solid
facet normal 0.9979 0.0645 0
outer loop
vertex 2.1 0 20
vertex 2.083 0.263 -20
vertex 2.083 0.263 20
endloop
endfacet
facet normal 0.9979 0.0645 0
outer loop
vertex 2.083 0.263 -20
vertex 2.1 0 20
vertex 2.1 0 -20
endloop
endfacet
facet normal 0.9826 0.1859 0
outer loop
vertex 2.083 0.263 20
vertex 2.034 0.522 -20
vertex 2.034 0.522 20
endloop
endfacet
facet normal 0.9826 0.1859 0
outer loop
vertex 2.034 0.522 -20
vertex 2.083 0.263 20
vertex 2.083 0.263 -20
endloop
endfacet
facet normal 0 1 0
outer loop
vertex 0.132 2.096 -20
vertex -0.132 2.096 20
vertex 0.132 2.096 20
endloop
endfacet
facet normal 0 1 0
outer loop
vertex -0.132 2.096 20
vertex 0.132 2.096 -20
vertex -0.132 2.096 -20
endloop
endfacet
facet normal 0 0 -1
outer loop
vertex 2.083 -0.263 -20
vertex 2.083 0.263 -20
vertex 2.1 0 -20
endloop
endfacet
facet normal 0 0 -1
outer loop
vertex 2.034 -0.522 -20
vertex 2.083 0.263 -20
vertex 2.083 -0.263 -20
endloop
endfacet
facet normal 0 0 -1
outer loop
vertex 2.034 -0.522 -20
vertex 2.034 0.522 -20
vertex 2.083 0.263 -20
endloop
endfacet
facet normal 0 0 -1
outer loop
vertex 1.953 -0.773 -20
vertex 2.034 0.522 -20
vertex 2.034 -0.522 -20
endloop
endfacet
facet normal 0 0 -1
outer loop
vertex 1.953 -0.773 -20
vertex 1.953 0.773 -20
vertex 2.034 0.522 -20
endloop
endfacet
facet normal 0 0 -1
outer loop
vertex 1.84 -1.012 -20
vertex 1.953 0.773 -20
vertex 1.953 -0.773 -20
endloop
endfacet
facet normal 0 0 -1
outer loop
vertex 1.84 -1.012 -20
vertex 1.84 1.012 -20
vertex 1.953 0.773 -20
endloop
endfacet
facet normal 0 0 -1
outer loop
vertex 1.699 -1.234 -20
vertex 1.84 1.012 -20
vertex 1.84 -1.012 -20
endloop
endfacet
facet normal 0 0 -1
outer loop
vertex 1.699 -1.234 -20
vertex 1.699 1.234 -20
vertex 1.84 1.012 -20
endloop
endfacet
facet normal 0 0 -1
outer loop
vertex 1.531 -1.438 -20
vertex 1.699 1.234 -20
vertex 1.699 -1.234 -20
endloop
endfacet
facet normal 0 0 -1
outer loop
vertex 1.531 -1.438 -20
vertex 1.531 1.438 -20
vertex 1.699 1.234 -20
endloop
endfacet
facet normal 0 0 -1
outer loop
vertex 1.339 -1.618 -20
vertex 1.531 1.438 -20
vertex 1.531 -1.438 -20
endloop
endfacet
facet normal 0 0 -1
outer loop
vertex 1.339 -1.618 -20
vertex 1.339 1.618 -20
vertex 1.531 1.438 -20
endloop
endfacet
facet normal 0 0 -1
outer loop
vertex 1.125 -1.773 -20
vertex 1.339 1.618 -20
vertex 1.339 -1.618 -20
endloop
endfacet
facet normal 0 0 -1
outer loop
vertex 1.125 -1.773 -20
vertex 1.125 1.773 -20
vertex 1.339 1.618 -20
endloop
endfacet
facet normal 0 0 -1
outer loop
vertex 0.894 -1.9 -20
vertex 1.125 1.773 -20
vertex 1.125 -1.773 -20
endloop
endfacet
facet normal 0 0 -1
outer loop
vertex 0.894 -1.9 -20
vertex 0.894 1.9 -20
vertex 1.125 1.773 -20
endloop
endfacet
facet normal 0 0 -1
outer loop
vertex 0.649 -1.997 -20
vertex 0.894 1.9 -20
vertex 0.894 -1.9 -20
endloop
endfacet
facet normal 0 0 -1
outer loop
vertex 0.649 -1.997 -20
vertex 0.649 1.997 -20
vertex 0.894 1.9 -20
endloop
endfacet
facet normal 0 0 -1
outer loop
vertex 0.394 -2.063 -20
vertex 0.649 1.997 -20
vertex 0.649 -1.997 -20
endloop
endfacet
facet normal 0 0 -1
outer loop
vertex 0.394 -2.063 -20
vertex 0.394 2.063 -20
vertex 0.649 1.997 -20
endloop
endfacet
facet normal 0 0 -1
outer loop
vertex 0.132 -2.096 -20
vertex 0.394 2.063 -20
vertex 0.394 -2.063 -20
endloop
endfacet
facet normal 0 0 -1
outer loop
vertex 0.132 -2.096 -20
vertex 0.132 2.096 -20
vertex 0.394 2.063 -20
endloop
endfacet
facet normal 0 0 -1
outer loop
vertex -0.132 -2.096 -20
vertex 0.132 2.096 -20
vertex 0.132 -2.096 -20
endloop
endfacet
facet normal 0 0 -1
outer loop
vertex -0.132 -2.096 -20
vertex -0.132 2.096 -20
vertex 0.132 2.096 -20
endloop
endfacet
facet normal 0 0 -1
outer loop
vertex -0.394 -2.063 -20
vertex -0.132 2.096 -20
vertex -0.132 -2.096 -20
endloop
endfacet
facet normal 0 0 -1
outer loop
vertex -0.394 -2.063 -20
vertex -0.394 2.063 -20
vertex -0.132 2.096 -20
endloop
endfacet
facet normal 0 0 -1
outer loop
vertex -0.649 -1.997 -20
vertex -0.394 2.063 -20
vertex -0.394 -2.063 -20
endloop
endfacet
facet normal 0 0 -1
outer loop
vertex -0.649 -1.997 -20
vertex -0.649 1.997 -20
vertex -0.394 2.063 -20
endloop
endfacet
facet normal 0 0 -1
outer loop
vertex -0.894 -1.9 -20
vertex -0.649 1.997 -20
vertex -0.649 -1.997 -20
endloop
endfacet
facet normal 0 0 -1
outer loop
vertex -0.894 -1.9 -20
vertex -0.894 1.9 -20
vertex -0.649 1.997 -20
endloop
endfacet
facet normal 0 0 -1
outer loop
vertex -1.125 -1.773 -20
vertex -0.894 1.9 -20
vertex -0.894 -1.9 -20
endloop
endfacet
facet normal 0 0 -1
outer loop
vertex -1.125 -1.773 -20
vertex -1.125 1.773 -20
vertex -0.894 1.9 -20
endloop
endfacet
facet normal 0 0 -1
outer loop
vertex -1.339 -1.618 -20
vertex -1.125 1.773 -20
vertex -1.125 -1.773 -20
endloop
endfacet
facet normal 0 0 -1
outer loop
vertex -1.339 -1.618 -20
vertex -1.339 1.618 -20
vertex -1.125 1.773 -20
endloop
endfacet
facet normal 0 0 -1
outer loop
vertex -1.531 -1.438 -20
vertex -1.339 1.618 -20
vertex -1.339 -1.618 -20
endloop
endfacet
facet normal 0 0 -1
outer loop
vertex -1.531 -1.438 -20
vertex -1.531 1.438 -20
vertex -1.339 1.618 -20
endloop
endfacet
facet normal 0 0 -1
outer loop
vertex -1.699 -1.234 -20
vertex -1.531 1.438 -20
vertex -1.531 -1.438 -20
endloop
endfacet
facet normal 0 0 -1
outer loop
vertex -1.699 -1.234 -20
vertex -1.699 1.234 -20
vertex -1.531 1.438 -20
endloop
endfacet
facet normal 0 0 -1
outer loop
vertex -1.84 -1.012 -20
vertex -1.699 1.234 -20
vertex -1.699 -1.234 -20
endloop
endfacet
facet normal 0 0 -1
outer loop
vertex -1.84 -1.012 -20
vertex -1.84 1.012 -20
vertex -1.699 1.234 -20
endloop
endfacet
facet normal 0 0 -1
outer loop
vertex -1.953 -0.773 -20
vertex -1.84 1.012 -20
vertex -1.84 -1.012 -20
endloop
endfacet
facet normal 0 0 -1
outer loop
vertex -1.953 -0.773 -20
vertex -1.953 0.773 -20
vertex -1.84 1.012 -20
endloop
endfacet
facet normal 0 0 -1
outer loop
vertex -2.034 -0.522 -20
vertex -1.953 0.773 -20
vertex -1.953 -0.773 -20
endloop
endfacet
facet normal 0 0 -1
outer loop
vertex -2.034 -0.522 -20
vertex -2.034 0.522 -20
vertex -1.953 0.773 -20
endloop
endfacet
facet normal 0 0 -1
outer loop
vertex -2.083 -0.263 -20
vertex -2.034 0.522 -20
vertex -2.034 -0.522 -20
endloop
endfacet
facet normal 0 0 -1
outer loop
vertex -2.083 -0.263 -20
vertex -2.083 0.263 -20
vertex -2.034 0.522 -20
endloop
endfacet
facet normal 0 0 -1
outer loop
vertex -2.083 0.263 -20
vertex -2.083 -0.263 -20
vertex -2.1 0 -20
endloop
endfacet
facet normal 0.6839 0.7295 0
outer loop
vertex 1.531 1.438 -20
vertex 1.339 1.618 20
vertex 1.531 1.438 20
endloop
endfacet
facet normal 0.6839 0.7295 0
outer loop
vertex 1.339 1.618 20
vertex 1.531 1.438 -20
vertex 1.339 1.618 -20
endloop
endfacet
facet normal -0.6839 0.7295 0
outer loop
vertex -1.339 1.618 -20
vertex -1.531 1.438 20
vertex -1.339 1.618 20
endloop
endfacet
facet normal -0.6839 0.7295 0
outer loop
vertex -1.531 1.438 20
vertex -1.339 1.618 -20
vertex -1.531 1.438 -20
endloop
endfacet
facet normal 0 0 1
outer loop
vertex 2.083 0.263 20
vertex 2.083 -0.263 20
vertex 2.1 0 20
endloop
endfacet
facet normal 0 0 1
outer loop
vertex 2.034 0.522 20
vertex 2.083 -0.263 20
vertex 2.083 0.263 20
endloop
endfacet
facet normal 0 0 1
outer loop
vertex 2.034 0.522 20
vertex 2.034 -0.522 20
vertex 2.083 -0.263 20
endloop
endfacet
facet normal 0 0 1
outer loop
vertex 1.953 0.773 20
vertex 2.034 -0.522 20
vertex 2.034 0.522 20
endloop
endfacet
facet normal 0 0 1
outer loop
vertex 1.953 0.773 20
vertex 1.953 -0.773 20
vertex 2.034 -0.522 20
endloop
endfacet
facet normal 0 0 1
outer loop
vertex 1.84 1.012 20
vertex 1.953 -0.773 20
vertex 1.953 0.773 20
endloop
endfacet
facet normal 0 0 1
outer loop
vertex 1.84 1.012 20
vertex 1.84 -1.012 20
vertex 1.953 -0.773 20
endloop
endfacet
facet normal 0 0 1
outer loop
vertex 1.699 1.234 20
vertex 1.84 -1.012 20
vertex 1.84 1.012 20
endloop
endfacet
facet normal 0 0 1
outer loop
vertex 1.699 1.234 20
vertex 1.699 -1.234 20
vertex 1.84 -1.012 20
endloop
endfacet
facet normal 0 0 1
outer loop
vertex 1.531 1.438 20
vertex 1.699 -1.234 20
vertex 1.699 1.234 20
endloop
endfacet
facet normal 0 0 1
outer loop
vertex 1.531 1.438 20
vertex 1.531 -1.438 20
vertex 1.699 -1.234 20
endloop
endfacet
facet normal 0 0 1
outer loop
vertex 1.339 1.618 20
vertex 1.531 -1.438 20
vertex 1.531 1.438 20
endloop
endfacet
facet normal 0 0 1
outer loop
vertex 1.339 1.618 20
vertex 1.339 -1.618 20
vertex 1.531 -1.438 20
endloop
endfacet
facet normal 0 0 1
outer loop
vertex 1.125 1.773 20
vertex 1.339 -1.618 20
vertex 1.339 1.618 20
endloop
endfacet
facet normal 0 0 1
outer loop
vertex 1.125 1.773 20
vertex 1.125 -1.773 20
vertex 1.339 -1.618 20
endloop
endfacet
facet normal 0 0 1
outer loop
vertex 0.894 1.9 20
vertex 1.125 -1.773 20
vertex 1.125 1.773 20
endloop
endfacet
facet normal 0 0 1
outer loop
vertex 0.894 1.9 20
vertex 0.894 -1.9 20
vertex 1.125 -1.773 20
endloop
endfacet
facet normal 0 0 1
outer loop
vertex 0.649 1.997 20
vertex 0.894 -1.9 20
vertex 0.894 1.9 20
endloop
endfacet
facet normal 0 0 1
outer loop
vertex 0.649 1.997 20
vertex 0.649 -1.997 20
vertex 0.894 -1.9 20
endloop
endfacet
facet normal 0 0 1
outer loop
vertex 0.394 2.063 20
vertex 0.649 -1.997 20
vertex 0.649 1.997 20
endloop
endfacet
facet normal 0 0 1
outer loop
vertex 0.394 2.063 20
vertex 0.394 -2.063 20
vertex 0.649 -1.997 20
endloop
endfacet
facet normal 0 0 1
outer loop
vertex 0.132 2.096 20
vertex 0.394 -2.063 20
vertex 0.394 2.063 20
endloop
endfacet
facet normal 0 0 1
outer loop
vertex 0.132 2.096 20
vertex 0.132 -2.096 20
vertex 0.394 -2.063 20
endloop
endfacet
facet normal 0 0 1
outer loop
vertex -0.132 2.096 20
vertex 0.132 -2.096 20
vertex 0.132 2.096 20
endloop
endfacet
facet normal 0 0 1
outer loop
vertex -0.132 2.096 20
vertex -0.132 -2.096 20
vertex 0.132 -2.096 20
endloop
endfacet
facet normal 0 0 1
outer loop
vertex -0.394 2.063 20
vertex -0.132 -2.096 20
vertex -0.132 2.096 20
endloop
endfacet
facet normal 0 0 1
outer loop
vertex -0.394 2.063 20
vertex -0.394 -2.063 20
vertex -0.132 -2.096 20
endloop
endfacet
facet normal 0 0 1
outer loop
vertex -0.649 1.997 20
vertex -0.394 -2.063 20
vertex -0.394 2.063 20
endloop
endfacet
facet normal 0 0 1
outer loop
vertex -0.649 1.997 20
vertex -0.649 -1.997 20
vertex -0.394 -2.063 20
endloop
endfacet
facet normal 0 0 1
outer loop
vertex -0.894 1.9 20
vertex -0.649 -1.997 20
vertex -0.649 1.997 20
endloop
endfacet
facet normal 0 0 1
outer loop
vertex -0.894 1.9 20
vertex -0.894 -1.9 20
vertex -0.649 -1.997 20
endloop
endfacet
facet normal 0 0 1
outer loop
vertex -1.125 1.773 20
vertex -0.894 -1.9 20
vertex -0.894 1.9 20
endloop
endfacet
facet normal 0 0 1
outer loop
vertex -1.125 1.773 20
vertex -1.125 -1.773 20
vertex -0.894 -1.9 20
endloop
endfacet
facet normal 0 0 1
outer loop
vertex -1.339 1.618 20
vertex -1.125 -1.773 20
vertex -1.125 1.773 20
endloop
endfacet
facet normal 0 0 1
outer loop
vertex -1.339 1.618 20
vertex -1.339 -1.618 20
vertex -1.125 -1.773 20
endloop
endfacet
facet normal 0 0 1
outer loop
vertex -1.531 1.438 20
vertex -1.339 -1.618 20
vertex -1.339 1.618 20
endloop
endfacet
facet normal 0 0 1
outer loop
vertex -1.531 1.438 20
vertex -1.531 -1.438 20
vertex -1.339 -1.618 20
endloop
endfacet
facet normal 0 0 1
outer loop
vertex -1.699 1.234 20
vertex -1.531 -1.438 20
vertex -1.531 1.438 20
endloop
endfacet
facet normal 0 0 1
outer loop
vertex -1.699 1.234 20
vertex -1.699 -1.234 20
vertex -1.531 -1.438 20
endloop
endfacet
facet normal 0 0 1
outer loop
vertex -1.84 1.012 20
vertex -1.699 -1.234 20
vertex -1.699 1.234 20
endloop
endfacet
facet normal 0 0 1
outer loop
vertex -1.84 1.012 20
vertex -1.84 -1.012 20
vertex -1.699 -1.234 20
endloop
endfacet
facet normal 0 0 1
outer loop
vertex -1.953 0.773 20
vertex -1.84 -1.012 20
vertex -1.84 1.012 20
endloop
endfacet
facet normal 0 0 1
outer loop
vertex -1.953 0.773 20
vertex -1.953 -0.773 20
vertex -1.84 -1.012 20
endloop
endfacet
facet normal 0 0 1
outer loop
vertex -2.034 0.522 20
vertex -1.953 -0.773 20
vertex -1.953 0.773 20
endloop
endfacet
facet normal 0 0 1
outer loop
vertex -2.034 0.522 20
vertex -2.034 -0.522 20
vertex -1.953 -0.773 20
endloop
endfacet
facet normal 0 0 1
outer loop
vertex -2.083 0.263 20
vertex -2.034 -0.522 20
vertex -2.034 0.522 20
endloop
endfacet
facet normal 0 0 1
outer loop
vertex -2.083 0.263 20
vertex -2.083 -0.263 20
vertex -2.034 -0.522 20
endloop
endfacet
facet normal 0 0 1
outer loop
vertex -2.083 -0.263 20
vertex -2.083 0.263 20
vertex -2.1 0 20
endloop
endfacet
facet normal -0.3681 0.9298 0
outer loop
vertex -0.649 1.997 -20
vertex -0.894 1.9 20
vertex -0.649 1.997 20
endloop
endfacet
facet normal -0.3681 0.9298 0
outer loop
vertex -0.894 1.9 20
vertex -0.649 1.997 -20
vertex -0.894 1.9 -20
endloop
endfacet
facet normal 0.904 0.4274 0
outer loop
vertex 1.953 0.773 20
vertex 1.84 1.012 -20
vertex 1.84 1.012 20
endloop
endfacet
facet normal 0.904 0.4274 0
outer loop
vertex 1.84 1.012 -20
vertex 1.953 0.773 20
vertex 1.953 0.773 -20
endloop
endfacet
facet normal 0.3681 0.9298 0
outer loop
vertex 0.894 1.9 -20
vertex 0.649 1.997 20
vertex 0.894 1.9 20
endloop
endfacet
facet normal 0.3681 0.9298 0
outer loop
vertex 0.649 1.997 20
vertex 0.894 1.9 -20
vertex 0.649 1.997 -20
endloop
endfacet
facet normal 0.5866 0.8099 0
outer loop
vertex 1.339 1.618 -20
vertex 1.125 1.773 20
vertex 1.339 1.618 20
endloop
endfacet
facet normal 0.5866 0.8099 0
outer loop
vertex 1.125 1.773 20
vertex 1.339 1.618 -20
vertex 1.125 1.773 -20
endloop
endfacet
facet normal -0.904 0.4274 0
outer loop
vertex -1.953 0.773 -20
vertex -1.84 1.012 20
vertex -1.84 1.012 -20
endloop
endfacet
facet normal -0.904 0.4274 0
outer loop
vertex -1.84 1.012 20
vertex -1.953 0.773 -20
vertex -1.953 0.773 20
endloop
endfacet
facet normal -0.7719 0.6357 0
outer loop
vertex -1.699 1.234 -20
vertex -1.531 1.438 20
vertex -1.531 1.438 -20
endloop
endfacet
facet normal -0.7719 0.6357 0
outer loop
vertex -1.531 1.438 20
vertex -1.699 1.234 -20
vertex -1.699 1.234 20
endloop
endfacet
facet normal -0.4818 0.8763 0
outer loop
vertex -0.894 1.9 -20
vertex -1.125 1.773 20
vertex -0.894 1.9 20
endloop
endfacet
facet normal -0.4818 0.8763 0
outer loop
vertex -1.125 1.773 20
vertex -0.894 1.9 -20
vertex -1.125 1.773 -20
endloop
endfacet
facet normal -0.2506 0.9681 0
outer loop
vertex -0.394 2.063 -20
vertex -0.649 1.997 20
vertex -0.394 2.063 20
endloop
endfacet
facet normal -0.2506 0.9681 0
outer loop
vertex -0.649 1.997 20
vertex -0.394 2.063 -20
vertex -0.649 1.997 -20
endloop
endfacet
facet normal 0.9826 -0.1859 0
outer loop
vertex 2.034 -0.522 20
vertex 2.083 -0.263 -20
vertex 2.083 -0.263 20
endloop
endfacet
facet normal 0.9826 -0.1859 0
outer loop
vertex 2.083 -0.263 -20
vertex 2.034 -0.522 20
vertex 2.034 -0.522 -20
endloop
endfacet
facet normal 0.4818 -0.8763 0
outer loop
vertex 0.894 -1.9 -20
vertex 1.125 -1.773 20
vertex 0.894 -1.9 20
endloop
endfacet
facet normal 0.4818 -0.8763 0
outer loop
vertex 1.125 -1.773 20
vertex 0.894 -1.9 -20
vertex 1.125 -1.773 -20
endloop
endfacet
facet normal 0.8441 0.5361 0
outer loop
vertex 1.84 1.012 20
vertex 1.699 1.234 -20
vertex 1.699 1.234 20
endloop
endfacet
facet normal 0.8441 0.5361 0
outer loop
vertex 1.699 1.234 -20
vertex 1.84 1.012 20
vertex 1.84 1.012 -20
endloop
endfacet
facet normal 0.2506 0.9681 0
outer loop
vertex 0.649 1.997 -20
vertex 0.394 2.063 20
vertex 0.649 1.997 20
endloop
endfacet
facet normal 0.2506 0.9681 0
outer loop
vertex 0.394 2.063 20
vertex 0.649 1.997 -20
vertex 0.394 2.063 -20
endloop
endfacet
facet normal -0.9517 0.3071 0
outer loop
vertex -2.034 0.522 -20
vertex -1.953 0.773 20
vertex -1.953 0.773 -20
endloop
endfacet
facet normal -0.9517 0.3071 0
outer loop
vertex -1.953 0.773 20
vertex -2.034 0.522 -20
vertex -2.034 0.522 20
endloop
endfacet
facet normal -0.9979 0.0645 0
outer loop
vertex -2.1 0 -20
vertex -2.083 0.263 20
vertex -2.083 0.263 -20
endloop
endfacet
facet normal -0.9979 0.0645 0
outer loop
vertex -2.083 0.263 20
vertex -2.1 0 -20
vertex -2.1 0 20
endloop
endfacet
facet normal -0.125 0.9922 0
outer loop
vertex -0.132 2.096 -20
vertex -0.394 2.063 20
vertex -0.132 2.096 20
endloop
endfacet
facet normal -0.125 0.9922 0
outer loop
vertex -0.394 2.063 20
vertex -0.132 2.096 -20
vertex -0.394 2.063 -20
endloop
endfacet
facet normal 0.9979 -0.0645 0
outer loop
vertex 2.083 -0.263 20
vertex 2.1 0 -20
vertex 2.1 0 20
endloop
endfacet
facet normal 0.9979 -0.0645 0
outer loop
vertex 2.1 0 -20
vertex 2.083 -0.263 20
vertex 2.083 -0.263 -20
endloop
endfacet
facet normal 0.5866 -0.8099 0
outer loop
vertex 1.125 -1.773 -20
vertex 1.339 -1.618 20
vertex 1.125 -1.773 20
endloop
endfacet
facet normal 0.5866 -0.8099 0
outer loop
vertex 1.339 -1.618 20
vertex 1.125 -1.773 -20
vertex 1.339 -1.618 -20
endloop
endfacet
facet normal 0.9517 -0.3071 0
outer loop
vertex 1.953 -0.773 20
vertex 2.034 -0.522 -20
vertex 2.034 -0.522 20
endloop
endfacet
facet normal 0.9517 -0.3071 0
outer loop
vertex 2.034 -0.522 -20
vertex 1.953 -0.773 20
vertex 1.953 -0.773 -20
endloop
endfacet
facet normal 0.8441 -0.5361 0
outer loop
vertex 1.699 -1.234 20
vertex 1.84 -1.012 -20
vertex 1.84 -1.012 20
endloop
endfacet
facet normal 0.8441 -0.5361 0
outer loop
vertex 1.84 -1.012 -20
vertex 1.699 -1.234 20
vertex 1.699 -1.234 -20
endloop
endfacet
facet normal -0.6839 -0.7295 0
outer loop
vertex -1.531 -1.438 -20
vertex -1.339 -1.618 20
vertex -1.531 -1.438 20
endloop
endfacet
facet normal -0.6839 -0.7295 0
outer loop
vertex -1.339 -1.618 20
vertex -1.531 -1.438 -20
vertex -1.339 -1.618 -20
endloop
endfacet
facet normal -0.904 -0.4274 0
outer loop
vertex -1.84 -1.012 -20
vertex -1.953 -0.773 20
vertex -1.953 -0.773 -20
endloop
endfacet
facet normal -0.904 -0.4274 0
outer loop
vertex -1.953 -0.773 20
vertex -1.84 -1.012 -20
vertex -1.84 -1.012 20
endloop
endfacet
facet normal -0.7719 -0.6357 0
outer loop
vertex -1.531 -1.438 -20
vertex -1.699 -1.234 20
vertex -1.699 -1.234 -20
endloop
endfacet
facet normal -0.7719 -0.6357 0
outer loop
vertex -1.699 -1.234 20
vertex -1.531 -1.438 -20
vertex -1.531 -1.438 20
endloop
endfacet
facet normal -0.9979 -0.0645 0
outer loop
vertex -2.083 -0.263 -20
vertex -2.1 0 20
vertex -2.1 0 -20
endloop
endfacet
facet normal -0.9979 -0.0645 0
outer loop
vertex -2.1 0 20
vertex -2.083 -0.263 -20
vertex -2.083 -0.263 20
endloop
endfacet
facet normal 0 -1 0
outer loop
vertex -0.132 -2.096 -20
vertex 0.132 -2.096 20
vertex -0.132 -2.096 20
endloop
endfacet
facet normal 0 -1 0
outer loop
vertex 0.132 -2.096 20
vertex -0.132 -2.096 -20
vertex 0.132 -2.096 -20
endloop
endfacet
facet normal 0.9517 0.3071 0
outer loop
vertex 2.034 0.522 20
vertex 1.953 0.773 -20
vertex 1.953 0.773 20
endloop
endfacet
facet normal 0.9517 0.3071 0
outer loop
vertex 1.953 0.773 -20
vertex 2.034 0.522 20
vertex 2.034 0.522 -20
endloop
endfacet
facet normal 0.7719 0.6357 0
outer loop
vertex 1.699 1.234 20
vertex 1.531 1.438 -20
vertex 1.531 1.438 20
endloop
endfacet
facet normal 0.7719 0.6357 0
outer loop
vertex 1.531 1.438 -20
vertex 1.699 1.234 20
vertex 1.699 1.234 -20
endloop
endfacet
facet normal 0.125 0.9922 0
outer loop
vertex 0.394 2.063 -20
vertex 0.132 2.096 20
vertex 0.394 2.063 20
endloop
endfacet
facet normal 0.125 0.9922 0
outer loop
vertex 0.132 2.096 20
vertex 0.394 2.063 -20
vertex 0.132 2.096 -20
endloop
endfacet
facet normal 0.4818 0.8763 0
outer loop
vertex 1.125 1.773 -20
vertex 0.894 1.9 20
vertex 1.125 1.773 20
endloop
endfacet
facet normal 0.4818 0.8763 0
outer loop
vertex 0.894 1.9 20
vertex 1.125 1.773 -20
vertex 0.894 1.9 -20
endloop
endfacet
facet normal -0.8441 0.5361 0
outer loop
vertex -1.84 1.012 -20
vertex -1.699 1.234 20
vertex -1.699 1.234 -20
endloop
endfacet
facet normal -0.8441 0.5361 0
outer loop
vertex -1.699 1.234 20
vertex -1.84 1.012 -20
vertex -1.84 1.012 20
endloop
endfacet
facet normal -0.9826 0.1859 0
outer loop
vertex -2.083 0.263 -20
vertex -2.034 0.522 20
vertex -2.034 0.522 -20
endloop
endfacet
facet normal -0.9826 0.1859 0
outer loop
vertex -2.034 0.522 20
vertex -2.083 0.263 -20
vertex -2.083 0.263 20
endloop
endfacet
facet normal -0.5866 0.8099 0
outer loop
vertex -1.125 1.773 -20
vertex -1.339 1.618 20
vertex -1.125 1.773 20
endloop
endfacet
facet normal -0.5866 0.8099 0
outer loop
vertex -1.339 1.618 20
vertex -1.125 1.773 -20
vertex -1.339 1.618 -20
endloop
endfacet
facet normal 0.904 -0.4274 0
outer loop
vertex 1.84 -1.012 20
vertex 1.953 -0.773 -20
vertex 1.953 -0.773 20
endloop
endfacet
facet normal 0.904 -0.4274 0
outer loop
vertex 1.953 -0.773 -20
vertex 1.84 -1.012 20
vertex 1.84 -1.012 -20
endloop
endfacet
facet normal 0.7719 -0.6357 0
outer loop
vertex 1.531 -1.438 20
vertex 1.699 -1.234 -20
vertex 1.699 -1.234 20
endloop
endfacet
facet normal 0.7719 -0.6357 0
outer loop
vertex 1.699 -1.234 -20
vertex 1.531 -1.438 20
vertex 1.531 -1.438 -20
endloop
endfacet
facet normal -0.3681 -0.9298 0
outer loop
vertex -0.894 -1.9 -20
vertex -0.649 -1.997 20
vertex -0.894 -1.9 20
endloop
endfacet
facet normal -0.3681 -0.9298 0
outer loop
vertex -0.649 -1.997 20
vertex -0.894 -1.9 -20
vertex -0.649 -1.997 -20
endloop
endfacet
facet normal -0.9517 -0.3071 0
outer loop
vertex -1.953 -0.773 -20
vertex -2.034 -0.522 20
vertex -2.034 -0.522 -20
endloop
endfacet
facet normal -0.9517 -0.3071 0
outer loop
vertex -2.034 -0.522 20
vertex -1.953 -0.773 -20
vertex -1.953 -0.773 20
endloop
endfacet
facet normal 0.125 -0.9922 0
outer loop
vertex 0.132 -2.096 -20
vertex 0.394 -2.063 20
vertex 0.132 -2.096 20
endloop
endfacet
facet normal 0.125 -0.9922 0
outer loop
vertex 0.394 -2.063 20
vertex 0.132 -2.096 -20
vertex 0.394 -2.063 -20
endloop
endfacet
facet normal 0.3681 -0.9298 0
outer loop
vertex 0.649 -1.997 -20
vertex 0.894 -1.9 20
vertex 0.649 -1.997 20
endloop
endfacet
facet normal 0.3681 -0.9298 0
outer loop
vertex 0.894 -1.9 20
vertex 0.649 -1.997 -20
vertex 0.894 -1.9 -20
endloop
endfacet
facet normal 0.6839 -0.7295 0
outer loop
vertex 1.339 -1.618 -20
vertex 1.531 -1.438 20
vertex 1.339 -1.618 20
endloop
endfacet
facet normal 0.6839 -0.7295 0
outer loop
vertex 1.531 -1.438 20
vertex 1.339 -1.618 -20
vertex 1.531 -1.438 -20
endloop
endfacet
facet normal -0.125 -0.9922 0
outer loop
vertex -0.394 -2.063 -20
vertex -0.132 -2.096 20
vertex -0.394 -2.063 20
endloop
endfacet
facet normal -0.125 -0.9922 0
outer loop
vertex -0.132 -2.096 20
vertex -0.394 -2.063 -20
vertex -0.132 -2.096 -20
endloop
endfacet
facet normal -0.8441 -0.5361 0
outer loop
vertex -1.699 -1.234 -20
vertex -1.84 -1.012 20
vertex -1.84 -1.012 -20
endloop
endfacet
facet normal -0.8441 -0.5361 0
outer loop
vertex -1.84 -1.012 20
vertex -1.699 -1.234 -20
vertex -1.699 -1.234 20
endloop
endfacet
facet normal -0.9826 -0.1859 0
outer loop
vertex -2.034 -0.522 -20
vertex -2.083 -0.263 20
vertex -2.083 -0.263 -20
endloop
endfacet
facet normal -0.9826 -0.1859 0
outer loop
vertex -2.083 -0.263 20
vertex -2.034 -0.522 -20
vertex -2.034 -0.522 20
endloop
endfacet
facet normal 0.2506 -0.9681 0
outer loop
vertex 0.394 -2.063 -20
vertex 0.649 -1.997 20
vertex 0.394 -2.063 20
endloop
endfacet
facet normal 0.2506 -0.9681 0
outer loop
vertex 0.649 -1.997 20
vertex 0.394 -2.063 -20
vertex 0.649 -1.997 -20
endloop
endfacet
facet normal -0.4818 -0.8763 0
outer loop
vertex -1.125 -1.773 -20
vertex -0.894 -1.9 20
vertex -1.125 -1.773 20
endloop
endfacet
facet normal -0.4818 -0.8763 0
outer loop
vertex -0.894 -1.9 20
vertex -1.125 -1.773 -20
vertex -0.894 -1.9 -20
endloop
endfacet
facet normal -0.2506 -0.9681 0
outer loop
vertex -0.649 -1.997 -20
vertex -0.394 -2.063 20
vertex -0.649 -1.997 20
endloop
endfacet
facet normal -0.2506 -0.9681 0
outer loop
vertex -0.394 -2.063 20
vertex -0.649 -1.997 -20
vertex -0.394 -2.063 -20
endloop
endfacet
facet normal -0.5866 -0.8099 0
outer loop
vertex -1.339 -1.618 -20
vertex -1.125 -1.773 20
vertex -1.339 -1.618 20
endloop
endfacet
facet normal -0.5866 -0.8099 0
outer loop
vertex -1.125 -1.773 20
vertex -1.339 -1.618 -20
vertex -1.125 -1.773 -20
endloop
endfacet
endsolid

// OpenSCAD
$fn = 50;


difference() {
	union() {
		translate(v = [0, 0, -20.0000000000]) {
			cylinder(h = 40, r = 2.1000000000);
		}
	}
	union() {
		translate(v = [0, 0, -100.0000000000]) {
			cylinder(h = 200, r = 0);
		}
	}
}
